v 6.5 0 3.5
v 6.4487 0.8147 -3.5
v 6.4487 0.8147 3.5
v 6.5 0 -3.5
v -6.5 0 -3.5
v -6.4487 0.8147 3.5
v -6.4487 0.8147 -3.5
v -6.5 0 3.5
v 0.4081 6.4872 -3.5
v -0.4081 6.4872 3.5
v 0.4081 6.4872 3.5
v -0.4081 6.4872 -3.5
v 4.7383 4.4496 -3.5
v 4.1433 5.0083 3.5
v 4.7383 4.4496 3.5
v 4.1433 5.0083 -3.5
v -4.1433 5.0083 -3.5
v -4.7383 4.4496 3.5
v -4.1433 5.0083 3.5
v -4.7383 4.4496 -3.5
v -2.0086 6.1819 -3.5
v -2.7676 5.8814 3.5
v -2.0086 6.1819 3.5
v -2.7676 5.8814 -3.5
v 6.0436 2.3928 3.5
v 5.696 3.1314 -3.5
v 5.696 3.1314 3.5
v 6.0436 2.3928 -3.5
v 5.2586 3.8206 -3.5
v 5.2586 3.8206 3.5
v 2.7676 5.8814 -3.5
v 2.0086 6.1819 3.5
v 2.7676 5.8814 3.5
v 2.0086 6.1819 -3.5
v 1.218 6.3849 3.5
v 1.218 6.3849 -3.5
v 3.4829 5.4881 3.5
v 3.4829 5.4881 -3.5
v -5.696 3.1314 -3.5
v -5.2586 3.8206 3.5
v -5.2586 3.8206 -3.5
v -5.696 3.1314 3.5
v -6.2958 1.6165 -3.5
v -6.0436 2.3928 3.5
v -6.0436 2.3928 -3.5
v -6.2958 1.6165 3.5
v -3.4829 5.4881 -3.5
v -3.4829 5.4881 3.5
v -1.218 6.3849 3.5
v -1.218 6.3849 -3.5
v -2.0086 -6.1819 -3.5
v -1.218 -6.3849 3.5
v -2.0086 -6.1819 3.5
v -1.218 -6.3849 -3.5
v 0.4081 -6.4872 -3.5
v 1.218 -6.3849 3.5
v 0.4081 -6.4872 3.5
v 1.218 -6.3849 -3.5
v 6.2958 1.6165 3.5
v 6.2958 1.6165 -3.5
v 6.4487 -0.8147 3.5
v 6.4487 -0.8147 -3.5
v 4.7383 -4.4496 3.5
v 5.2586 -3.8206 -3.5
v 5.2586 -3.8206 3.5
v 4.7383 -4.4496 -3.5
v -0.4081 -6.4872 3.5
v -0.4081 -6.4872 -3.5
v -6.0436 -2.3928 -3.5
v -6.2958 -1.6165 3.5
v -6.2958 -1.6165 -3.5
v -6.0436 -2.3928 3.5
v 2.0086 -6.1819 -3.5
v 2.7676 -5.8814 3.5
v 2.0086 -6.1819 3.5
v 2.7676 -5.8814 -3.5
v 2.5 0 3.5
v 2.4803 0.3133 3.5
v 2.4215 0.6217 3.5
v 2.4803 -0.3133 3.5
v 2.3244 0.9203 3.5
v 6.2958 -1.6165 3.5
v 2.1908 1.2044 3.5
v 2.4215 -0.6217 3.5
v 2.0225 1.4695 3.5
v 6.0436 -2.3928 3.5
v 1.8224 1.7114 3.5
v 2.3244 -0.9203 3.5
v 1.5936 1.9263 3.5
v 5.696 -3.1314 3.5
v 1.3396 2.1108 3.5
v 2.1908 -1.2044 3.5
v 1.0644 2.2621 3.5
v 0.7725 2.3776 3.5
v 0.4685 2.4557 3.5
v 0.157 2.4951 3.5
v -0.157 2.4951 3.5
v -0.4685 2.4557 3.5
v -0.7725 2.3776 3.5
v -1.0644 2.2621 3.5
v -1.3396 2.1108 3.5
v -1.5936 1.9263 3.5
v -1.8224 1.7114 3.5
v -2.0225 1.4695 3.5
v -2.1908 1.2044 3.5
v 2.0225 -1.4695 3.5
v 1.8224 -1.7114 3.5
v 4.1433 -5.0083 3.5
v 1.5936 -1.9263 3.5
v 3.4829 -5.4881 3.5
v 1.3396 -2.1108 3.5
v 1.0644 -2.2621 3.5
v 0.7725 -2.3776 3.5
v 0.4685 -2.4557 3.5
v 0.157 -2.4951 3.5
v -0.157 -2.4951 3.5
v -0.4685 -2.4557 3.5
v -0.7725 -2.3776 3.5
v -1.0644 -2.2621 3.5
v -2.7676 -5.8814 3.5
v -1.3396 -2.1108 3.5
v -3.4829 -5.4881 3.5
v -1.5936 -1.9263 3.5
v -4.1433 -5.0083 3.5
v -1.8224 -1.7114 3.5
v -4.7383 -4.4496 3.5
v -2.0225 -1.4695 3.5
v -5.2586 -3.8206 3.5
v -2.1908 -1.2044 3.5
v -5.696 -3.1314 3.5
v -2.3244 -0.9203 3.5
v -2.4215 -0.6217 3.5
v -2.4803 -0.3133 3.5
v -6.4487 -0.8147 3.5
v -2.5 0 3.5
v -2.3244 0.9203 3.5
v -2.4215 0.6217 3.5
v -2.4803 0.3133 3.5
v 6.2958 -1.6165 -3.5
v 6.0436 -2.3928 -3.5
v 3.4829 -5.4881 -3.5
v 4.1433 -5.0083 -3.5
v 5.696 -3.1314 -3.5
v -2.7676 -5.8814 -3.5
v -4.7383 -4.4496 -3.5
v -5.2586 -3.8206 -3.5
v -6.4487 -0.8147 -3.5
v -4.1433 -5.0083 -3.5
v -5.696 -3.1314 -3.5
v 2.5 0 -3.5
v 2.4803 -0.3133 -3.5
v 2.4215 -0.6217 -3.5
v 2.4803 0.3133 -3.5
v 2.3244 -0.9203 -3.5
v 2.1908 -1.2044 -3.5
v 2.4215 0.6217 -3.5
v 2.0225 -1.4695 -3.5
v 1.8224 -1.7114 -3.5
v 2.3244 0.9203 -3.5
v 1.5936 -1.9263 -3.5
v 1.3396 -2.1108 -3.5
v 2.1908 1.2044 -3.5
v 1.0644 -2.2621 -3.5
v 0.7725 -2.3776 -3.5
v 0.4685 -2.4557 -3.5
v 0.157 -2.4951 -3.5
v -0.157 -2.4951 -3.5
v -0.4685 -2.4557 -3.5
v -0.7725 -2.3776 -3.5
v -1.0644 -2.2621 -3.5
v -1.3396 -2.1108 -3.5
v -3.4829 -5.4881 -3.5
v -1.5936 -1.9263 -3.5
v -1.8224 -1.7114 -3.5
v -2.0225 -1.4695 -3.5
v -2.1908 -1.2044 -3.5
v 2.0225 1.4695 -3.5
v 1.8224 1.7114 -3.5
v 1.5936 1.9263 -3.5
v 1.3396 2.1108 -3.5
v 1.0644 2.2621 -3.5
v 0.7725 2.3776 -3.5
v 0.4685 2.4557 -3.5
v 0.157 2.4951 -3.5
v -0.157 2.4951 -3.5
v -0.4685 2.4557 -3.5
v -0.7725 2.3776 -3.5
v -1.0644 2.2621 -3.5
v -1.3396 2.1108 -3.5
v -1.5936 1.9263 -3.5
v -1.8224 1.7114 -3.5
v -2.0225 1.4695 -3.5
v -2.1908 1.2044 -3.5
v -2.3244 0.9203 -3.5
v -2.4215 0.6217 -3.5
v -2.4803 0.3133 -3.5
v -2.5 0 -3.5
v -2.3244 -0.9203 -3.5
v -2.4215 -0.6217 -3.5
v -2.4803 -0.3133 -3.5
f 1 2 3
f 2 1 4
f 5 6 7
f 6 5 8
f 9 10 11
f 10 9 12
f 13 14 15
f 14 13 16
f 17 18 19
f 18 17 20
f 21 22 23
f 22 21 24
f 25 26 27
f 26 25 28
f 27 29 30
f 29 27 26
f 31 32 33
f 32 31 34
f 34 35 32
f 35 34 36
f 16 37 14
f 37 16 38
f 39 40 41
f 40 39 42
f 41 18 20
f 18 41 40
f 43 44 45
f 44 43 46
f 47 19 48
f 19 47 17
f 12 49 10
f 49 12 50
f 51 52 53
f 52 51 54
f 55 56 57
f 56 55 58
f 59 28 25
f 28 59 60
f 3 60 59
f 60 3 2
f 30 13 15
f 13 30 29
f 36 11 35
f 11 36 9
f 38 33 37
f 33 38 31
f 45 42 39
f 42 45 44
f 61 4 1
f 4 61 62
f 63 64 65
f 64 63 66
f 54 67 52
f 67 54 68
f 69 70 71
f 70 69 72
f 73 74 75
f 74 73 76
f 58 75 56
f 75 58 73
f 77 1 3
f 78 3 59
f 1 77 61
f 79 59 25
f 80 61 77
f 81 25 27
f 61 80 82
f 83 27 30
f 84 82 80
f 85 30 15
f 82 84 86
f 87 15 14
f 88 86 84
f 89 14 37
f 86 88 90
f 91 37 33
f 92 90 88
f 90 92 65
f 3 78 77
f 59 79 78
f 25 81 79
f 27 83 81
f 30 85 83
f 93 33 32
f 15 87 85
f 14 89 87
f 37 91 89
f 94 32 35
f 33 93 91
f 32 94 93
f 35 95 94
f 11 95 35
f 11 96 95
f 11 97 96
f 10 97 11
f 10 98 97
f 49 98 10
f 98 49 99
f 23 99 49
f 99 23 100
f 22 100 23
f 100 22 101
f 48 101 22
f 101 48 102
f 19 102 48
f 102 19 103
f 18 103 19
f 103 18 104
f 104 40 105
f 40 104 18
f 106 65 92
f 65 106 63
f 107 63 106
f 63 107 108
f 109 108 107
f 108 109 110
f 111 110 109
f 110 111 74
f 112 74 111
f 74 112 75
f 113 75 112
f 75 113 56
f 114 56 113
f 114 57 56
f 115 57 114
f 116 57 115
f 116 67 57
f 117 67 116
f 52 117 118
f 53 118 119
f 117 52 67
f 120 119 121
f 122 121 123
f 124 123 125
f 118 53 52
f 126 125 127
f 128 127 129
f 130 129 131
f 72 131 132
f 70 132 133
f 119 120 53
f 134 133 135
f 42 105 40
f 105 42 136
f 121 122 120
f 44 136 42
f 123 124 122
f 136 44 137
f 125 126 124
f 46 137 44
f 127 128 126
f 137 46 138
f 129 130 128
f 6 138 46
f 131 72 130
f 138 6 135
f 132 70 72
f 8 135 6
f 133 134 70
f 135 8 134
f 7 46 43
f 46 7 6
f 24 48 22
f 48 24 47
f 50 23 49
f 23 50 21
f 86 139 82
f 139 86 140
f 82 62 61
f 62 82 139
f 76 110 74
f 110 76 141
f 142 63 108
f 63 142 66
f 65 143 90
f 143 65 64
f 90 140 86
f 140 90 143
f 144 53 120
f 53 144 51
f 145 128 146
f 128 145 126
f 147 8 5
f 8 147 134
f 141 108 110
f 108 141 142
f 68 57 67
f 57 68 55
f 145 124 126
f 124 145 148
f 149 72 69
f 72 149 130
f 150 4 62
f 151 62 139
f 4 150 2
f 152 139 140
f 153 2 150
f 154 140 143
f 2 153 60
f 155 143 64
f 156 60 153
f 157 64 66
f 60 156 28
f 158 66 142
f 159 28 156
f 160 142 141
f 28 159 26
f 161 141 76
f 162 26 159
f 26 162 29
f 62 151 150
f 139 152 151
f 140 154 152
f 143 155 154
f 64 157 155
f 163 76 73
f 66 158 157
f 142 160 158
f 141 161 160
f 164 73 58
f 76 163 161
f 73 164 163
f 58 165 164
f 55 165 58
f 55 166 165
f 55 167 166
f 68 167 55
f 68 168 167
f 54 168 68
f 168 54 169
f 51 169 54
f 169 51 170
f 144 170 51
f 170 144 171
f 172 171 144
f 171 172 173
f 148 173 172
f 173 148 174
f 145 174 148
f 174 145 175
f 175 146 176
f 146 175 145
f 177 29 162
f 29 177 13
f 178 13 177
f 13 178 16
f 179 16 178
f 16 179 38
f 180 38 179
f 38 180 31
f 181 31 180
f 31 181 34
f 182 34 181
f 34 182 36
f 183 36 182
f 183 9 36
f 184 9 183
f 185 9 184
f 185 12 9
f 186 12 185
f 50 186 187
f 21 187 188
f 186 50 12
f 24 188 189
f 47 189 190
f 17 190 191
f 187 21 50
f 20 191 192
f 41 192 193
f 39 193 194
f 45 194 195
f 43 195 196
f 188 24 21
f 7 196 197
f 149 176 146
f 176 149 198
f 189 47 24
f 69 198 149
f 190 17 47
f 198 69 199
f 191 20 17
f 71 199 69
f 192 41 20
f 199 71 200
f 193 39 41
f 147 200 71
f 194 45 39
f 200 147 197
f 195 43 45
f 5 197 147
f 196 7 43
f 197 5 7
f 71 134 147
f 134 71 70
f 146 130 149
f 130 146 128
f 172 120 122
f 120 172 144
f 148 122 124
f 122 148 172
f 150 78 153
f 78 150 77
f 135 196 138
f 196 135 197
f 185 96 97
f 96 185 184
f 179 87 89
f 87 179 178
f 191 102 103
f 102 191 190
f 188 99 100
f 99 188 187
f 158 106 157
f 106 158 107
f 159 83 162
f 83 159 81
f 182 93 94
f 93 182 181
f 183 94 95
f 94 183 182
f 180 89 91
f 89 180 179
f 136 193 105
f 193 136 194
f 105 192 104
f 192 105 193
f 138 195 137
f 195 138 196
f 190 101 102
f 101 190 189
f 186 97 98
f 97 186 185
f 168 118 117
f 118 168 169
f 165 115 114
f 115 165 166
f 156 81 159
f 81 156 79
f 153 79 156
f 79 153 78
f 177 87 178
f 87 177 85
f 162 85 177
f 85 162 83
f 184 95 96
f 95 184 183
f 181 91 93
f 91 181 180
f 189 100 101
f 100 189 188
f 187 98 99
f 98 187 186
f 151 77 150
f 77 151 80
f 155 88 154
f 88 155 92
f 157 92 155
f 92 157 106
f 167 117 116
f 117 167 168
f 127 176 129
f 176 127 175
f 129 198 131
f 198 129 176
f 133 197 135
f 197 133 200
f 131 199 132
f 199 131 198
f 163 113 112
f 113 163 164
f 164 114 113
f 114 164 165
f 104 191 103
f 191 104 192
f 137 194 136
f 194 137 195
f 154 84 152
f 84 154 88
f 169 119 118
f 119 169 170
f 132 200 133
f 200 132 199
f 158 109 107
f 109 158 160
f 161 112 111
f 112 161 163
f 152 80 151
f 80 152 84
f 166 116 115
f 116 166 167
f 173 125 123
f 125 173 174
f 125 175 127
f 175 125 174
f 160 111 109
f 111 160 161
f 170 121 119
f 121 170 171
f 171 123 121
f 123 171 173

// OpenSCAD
$fn = 50;


difference() {
	union() {
		translate(v = [0, 0, -3.5000000000]) {
			cylinder(h = 7, r = 6.5000000000);
		}
	}
	union() {
		translate(v = [0, 0, -100.0000000000]) {
			cylinder(h = 200, r = 2.5000000000);
		}
	}
}
